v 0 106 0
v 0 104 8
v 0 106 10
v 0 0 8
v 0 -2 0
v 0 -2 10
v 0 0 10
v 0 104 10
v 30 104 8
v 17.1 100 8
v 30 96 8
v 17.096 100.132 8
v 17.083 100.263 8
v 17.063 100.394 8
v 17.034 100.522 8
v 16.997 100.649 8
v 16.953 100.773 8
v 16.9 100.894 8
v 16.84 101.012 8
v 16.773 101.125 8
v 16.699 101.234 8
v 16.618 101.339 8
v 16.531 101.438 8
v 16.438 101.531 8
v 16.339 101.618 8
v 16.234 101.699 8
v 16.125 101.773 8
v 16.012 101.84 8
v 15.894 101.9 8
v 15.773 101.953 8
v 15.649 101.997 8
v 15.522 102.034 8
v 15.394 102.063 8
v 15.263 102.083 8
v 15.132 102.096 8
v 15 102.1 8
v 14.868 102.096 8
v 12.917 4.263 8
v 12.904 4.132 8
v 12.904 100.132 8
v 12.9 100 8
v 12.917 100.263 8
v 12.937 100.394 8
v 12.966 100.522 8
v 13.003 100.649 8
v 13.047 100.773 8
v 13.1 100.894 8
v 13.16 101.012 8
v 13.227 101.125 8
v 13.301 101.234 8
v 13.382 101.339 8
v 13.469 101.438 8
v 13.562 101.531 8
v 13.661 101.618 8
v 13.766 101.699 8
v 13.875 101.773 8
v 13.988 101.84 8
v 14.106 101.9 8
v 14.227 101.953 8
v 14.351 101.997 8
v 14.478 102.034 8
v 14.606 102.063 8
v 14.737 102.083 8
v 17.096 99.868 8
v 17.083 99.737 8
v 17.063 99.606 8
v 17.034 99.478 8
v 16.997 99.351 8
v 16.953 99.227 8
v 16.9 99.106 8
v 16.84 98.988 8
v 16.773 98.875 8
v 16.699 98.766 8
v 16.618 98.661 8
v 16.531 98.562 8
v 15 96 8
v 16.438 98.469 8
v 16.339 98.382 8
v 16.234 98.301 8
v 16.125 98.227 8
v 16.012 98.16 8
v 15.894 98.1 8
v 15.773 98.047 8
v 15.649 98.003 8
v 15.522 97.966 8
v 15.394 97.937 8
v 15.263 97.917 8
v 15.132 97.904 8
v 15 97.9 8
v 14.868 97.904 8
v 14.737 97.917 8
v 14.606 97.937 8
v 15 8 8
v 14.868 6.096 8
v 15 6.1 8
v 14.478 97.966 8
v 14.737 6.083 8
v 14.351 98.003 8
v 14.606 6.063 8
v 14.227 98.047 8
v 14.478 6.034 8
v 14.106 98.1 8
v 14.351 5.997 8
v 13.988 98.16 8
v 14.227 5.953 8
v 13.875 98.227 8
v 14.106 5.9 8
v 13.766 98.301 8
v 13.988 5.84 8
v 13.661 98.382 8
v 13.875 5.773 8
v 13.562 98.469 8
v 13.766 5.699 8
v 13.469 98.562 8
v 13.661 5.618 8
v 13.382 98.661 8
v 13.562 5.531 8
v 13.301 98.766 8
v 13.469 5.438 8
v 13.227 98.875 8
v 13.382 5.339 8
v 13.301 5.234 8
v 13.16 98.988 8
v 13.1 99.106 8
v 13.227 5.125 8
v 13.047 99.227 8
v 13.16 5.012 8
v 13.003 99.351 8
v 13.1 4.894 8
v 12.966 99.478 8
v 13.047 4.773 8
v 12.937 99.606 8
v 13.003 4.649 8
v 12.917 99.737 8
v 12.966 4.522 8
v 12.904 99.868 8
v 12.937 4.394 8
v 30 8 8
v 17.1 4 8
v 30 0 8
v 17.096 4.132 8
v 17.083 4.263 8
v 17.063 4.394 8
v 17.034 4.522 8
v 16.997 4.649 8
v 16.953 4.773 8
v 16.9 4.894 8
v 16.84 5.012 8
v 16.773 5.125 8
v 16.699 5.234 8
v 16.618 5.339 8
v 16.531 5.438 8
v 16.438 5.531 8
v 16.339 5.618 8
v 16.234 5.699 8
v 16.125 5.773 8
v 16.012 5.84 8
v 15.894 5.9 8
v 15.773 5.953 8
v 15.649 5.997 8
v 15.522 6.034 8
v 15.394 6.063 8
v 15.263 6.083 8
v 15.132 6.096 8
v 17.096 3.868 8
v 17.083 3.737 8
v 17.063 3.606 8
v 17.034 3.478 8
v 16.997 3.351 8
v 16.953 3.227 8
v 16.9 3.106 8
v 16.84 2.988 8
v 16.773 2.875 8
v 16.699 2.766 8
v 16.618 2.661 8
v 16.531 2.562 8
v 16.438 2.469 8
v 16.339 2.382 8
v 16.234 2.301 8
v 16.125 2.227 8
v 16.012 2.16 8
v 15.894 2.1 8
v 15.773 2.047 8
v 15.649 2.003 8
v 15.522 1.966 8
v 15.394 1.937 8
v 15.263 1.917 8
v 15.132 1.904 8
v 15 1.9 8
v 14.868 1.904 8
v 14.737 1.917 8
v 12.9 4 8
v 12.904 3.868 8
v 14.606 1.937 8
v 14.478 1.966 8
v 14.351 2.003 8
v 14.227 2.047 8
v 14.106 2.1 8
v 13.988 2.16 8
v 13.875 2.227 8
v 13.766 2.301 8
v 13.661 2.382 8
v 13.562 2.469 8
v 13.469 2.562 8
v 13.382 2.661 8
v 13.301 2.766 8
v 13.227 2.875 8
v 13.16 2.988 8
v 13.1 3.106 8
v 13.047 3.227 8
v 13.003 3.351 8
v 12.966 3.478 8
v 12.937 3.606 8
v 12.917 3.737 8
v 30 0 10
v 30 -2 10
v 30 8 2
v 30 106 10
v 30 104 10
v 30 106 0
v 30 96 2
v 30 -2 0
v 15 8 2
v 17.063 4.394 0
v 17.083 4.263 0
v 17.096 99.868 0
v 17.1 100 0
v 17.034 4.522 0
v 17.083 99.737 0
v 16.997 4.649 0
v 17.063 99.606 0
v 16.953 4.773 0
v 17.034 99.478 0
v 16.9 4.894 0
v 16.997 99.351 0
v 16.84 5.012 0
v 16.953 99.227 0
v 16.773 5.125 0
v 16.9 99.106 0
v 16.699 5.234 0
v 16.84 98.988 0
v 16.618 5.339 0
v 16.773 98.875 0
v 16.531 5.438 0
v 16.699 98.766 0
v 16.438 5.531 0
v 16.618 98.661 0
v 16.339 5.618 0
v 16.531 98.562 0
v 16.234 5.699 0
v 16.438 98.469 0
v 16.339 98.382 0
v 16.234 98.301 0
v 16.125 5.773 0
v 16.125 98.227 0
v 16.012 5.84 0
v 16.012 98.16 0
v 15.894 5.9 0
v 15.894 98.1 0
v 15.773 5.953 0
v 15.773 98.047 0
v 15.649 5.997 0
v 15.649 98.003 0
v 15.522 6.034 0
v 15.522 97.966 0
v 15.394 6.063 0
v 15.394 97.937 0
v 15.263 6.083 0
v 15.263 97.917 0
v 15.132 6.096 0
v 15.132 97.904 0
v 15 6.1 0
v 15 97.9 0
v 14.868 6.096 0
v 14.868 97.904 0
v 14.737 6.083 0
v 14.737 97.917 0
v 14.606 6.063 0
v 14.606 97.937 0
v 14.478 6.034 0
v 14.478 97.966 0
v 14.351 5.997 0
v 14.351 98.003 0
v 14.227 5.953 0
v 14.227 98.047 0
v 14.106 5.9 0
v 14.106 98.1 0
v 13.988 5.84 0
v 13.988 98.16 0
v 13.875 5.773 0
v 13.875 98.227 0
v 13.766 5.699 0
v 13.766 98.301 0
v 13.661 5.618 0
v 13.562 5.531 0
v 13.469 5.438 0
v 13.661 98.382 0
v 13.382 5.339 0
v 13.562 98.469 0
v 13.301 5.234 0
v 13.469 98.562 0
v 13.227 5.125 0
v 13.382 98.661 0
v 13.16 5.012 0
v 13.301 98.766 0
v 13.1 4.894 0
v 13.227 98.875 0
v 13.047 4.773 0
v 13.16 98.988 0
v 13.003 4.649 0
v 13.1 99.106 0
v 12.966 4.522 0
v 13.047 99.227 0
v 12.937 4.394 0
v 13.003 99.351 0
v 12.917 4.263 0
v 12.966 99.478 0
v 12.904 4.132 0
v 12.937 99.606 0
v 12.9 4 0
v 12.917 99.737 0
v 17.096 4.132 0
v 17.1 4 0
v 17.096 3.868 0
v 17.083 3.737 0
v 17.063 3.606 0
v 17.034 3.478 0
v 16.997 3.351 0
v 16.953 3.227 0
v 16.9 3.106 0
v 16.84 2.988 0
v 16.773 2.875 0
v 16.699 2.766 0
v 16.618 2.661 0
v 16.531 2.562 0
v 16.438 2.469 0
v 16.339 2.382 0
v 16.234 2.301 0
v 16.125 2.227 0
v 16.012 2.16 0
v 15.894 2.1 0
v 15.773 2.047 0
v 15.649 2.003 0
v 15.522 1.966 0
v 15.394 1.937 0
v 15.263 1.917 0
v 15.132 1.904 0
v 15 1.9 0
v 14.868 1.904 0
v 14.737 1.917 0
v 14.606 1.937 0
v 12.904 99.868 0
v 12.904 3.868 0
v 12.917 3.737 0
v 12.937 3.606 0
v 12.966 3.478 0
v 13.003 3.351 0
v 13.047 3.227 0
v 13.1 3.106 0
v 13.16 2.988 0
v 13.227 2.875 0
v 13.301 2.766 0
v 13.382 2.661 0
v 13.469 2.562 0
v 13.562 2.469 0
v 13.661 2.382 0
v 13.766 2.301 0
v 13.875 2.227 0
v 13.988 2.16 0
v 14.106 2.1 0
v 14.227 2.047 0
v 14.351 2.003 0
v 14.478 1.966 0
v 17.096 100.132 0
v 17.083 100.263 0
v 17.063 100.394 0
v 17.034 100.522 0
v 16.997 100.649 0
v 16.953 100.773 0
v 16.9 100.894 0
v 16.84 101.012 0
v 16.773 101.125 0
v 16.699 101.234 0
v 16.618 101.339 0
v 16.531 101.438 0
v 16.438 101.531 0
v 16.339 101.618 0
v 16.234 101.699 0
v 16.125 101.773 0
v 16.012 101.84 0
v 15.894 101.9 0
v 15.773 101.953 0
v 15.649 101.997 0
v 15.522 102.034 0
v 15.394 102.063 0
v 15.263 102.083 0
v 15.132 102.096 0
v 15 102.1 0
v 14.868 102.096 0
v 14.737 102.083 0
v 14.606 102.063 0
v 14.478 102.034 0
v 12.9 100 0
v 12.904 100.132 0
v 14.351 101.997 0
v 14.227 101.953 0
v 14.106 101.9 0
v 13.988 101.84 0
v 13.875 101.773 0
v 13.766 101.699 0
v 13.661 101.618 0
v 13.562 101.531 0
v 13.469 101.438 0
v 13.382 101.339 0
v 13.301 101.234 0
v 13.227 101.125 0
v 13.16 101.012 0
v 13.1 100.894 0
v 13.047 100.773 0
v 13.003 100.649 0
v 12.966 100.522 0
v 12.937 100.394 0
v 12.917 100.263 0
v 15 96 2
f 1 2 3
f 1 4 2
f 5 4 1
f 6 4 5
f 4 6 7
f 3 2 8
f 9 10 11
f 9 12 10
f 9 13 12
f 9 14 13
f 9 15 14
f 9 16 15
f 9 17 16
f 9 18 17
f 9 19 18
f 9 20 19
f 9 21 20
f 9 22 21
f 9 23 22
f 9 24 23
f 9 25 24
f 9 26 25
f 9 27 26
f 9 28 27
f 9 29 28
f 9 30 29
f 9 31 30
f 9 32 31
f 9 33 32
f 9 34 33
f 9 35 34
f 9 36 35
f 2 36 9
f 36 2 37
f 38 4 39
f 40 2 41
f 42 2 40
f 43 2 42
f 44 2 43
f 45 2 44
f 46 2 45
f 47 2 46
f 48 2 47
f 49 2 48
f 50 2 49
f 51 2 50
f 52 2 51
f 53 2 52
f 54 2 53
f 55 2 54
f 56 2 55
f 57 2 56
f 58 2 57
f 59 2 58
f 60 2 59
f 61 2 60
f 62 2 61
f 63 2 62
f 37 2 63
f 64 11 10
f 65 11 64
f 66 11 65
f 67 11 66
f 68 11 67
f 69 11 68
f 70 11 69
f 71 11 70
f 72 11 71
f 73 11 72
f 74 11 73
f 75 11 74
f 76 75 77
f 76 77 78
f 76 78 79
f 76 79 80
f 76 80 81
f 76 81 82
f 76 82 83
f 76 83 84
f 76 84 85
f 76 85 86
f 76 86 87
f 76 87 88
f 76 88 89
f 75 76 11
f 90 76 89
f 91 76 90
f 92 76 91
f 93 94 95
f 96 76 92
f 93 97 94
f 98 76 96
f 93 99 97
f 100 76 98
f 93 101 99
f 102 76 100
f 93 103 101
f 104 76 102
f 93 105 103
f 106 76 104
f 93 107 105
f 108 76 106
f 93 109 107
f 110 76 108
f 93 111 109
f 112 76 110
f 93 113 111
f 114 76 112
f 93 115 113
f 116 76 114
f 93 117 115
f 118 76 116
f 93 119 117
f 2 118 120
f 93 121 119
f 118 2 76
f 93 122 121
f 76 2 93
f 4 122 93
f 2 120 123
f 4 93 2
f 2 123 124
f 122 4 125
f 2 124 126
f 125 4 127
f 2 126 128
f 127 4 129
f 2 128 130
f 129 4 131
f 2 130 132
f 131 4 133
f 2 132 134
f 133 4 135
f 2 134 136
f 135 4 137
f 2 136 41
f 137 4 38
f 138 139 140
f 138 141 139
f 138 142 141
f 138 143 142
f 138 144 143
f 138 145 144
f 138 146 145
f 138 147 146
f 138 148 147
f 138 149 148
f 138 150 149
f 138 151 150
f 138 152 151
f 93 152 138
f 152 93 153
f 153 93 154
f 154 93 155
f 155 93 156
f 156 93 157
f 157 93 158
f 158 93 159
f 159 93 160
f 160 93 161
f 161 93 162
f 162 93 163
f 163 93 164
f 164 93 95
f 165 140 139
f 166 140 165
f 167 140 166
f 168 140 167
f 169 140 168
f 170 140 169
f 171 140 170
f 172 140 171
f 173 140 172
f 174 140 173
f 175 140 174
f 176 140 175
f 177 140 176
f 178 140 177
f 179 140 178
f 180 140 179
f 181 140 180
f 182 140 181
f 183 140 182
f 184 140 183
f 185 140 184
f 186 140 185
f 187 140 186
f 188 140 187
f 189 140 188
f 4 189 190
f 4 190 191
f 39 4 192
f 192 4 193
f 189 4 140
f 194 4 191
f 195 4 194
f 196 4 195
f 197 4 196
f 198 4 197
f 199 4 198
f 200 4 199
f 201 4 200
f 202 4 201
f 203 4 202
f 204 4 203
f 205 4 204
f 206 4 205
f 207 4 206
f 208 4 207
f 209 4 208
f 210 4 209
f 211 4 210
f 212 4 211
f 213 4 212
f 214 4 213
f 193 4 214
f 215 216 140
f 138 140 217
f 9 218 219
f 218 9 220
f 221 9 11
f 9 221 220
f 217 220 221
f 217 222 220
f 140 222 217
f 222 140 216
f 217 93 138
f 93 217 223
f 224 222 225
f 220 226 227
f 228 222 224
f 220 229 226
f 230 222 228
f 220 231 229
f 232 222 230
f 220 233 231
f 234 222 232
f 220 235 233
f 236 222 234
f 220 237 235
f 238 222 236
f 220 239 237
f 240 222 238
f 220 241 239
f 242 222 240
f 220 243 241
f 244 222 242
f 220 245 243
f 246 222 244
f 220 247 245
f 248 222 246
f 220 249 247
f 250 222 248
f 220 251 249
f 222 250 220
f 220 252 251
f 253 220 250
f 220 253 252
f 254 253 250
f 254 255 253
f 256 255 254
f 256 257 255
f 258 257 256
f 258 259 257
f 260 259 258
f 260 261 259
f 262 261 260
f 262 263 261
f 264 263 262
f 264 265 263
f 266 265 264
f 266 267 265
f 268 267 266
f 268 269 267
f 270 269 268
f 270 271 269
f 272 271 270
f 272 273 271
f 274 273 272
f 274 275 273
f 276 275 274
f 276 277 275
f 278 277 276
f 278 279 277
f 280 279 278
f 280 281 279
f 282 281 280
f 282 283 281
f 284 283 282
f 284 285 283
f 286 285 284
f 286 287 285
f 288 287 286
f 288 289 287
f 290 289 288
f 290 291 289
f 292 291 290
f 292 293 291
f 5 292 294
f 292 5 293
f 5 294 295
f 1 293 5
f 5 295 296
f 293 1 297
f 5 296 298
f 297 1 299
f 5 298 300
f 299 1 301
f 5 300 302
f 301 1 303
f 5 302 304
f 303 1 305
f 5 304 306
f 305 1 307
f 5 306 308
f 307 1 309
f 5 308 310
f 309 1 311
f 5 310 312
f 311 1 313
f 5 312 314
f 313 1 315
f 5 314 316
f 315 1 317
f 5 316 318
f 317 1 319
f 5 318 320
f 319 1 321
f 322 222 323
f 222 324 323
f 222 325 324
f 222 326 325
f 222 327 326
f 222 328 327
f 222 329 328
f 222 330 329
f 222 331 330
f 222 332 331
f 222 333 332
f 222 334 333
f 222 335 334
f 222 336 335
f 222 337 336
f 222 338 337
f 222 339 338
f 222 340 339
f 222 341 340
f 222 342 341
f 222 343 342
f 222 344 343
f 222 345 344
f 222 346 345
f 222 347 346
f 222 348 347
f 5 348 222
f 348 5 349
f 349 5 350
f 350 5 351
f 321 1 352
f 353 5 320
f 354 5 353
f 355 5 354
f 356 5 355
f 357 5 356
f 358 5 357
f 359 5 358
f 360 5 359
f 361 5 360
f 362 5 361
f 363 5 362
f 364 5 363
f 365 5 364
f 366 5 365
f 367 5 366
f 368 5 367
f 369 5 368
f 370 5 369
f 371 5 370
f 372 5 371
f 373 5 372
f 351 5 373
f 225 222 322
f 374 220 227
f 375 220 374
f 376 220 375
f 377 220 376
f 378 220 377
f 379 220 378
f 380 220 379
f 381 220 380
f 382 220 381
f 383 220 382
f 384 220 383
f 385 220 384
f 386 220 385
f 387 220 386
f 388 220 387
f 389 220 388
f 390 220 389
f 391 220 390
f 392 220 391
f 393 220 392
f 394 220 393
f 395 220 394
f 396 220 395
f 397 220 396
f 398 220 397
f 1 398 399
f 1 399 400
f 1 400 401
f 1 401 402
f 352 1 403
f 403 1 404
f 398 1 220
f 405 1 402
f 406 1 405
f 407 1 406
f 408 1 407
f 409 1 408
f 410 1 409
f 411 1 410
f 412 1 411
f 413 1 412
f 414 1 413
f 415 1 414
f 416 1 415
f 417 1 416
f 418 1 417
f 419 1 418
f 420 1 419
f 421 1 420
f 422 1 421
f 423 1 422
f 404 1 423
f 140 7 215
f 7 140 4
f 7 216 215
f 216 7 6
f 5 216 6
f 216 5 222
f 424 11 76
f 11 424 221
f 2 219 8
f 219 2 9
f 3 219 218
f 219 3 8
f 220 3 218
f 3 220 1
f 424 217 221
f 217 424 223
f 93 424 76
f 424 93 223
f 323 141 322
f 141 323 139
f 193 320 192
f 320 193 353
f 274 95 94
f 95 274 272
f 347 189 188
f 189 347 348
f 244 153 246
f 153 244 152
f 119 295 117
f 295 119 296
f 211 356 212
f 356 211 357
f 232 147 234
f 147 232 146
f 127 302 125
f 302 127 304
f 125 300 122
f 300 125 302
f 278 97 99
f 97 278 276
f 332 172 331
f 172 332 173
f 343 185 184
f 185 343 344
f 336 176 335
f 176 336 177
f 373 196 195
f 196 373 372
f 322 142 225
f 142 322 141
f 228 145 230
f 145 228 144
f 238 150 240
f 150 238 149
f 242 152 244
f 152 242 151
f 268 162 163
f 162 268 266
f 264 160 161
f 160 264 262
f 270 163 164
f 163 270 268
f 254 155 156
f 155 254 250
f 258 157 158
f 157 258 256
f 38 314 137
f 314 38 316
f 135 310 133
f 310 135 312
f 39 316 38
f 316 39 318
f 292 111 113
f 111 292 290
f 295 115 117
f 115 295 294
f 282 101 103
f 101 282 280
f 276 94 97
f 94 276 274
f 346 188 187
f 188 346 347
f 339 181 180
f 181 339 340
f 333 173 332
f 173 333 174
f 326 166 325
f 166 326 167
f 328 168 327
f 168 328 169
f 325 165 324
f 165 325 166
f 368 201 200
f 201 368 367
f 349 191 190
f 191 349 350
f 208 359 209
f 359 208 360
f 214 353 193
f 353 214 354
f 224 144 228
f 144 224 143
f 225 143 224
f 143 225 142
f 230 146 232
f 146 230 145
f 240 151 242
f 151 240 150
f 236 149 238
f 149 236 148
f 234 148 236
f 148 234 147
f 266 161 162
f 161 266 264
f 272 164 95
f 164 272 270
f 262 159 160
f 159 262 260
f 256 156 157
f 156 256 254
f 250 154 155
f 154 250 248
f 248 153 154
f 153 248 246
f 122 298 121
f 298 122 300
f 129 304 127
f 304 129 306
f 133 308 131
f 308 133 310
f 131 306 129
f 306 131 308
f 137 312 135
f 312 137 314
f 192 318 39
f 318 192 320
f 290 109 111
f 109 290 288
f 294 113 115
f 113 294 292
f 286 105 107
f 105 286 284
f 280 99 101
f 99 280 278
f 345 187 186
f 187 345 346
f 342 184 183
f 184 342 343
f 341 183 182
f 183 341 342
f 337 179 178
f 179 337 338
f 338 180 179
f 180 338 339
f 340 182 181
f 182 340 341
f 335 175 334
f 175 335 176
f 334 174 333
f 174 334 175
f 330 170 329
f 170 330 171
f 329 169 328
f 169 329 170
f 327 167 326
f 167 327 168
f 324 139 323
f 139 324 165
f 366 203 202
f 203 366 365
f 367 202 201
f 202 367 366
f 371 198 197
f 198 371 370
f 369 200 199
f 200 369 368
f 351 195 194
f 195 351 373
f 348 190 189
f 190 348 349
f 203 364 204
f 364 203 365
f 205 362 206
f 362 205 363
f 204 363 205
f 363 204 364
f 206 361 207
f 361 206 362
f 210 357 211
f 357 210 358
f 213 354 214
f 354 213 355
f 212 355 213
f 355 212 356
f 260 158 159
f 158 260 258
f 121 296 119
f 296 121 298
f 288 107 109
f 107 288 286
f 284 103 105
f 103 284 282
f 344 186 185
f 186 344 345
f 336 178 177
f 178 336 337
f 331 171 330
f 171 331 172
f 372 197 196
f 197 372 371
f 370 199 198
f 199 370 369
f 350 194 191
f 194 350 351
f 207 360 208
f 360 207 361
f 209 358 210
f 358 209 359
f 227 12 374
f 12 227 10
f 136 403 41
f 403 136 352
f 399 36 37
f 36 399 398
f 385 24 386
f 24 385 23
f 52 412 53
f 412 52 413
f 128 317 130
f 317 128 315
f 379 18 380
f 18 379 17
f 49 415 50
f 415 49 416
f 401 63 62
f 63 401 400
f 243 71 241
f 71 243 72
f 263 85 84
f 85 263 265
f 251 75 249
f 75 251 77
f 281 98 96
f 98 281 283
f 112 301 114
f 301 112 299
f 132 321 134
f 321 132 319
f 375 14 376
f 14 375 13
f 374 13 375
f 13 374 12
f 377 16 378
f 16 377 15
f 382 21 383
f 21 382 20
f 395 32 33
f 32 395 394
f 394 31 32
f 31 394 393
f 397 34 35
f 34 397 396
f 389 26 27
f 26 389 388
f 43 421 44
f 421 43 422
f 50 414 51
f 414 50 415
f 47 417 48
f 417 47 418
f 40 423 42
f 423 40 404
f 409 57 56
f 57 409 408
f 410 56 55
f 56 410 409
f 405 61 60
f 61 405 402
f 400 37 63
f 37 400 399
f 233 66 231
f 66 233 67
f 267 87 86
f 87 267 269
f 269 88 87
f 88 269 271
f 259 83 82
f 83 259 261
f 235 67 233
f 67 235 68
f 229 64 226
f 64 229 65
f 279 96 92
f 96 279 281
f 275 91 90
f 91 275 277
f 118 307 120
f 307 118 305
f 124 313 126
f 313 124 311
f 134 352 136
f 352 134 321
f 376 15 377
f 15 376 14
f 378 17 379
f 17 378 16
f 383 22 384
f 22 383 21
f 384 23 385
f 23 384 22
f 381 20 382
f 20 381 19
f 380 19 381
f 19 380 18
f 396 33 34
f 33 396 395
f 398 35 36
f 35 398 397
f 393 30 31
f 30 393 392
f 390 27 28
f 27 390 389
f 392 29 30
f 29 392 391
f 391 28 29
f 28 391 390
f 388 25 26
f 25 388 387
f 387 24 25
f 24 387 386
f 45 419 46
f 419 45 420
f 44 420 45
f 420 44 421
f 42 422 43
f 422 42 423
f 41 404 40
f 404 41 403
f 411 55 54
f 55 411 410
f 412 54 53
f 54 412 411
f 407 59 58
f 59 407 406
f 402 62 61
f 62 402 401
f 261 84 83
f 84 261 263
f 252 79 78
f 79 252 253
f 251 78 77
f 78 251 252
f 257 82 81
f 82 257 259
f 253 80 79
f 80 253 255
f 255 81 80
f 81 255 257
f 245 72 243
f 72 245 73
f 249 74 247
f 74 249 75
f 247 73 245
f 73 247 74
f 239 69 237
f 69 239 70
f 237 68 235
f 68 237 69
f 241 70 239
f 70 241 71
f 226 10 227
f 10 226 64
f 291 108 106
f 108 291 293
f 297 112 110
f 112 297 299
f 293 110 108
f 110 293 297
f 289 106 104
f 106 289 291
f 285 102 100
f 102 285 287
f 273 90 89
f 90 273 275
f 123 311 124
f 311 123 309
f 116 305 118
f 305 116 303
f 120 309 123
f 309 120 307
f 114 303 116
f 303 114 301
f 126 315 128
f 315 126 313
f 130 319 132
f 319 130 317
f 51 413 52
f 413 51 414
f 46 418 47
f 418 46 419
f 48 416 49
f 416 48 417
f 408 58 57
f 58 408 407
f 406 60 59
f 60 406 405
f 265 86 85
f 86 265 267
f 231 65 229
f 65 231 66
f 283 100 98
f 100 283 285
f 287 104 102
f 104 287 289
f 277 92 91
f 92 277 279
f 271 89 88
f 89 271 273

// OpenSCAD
terminal_grp_cnt = 5; //x2
terminal_grp_len = 2 * 8.5; //mm

terminal_grp_pos_x = 15; //mm
terminal_grp_pos_y = 18; //mm

terminal_bed_hight = 2; //mm

body_hight = 8; //mm
body_len = 30; //mm
body_width = 8; //mm
body_grp_width = 36 - terminal_grp_len; //mm
body_full_width = body_grp_width + terminal_grp_cnt * terminal_grp_len;

hole_dia = 4.2; //mm
hole_pos_x = 15; //mm
hole_pos_y = 4; //mm

border_hight = 2; //mm
border_width = 2; //mm

$fn = 100;

echo("full width = ", body_full_width);

module foot() {
    translate([0, 0, 0])
        cube([body_len, body_width, body_hight]);
    translate([0, -border_width, 0])
        cube([body_len, border_width, border_hight + body_hight]);
}

difference() {
    union() {
        translate([0, 0, 0])
            rotate(0)
                foot();
        translate([0, body_full_width, 0])
            mirror([0, 1, 0])
                foot();
        cube([body_len, body_full_width, terminal_bed_hight]);
        cube([hole_pos_x, body_full_width, body_hight]);
    }
    union() {
        translate([hole_pos_x, hole_pos_y, 0])
            cylinder(body_hight, r = hole_dia / 2);
        translate([hole_pos_x, body_full_width - hole_pos_y, 0])
            cylinder(body_hight, r = hole_dia / 2);
    }
}
